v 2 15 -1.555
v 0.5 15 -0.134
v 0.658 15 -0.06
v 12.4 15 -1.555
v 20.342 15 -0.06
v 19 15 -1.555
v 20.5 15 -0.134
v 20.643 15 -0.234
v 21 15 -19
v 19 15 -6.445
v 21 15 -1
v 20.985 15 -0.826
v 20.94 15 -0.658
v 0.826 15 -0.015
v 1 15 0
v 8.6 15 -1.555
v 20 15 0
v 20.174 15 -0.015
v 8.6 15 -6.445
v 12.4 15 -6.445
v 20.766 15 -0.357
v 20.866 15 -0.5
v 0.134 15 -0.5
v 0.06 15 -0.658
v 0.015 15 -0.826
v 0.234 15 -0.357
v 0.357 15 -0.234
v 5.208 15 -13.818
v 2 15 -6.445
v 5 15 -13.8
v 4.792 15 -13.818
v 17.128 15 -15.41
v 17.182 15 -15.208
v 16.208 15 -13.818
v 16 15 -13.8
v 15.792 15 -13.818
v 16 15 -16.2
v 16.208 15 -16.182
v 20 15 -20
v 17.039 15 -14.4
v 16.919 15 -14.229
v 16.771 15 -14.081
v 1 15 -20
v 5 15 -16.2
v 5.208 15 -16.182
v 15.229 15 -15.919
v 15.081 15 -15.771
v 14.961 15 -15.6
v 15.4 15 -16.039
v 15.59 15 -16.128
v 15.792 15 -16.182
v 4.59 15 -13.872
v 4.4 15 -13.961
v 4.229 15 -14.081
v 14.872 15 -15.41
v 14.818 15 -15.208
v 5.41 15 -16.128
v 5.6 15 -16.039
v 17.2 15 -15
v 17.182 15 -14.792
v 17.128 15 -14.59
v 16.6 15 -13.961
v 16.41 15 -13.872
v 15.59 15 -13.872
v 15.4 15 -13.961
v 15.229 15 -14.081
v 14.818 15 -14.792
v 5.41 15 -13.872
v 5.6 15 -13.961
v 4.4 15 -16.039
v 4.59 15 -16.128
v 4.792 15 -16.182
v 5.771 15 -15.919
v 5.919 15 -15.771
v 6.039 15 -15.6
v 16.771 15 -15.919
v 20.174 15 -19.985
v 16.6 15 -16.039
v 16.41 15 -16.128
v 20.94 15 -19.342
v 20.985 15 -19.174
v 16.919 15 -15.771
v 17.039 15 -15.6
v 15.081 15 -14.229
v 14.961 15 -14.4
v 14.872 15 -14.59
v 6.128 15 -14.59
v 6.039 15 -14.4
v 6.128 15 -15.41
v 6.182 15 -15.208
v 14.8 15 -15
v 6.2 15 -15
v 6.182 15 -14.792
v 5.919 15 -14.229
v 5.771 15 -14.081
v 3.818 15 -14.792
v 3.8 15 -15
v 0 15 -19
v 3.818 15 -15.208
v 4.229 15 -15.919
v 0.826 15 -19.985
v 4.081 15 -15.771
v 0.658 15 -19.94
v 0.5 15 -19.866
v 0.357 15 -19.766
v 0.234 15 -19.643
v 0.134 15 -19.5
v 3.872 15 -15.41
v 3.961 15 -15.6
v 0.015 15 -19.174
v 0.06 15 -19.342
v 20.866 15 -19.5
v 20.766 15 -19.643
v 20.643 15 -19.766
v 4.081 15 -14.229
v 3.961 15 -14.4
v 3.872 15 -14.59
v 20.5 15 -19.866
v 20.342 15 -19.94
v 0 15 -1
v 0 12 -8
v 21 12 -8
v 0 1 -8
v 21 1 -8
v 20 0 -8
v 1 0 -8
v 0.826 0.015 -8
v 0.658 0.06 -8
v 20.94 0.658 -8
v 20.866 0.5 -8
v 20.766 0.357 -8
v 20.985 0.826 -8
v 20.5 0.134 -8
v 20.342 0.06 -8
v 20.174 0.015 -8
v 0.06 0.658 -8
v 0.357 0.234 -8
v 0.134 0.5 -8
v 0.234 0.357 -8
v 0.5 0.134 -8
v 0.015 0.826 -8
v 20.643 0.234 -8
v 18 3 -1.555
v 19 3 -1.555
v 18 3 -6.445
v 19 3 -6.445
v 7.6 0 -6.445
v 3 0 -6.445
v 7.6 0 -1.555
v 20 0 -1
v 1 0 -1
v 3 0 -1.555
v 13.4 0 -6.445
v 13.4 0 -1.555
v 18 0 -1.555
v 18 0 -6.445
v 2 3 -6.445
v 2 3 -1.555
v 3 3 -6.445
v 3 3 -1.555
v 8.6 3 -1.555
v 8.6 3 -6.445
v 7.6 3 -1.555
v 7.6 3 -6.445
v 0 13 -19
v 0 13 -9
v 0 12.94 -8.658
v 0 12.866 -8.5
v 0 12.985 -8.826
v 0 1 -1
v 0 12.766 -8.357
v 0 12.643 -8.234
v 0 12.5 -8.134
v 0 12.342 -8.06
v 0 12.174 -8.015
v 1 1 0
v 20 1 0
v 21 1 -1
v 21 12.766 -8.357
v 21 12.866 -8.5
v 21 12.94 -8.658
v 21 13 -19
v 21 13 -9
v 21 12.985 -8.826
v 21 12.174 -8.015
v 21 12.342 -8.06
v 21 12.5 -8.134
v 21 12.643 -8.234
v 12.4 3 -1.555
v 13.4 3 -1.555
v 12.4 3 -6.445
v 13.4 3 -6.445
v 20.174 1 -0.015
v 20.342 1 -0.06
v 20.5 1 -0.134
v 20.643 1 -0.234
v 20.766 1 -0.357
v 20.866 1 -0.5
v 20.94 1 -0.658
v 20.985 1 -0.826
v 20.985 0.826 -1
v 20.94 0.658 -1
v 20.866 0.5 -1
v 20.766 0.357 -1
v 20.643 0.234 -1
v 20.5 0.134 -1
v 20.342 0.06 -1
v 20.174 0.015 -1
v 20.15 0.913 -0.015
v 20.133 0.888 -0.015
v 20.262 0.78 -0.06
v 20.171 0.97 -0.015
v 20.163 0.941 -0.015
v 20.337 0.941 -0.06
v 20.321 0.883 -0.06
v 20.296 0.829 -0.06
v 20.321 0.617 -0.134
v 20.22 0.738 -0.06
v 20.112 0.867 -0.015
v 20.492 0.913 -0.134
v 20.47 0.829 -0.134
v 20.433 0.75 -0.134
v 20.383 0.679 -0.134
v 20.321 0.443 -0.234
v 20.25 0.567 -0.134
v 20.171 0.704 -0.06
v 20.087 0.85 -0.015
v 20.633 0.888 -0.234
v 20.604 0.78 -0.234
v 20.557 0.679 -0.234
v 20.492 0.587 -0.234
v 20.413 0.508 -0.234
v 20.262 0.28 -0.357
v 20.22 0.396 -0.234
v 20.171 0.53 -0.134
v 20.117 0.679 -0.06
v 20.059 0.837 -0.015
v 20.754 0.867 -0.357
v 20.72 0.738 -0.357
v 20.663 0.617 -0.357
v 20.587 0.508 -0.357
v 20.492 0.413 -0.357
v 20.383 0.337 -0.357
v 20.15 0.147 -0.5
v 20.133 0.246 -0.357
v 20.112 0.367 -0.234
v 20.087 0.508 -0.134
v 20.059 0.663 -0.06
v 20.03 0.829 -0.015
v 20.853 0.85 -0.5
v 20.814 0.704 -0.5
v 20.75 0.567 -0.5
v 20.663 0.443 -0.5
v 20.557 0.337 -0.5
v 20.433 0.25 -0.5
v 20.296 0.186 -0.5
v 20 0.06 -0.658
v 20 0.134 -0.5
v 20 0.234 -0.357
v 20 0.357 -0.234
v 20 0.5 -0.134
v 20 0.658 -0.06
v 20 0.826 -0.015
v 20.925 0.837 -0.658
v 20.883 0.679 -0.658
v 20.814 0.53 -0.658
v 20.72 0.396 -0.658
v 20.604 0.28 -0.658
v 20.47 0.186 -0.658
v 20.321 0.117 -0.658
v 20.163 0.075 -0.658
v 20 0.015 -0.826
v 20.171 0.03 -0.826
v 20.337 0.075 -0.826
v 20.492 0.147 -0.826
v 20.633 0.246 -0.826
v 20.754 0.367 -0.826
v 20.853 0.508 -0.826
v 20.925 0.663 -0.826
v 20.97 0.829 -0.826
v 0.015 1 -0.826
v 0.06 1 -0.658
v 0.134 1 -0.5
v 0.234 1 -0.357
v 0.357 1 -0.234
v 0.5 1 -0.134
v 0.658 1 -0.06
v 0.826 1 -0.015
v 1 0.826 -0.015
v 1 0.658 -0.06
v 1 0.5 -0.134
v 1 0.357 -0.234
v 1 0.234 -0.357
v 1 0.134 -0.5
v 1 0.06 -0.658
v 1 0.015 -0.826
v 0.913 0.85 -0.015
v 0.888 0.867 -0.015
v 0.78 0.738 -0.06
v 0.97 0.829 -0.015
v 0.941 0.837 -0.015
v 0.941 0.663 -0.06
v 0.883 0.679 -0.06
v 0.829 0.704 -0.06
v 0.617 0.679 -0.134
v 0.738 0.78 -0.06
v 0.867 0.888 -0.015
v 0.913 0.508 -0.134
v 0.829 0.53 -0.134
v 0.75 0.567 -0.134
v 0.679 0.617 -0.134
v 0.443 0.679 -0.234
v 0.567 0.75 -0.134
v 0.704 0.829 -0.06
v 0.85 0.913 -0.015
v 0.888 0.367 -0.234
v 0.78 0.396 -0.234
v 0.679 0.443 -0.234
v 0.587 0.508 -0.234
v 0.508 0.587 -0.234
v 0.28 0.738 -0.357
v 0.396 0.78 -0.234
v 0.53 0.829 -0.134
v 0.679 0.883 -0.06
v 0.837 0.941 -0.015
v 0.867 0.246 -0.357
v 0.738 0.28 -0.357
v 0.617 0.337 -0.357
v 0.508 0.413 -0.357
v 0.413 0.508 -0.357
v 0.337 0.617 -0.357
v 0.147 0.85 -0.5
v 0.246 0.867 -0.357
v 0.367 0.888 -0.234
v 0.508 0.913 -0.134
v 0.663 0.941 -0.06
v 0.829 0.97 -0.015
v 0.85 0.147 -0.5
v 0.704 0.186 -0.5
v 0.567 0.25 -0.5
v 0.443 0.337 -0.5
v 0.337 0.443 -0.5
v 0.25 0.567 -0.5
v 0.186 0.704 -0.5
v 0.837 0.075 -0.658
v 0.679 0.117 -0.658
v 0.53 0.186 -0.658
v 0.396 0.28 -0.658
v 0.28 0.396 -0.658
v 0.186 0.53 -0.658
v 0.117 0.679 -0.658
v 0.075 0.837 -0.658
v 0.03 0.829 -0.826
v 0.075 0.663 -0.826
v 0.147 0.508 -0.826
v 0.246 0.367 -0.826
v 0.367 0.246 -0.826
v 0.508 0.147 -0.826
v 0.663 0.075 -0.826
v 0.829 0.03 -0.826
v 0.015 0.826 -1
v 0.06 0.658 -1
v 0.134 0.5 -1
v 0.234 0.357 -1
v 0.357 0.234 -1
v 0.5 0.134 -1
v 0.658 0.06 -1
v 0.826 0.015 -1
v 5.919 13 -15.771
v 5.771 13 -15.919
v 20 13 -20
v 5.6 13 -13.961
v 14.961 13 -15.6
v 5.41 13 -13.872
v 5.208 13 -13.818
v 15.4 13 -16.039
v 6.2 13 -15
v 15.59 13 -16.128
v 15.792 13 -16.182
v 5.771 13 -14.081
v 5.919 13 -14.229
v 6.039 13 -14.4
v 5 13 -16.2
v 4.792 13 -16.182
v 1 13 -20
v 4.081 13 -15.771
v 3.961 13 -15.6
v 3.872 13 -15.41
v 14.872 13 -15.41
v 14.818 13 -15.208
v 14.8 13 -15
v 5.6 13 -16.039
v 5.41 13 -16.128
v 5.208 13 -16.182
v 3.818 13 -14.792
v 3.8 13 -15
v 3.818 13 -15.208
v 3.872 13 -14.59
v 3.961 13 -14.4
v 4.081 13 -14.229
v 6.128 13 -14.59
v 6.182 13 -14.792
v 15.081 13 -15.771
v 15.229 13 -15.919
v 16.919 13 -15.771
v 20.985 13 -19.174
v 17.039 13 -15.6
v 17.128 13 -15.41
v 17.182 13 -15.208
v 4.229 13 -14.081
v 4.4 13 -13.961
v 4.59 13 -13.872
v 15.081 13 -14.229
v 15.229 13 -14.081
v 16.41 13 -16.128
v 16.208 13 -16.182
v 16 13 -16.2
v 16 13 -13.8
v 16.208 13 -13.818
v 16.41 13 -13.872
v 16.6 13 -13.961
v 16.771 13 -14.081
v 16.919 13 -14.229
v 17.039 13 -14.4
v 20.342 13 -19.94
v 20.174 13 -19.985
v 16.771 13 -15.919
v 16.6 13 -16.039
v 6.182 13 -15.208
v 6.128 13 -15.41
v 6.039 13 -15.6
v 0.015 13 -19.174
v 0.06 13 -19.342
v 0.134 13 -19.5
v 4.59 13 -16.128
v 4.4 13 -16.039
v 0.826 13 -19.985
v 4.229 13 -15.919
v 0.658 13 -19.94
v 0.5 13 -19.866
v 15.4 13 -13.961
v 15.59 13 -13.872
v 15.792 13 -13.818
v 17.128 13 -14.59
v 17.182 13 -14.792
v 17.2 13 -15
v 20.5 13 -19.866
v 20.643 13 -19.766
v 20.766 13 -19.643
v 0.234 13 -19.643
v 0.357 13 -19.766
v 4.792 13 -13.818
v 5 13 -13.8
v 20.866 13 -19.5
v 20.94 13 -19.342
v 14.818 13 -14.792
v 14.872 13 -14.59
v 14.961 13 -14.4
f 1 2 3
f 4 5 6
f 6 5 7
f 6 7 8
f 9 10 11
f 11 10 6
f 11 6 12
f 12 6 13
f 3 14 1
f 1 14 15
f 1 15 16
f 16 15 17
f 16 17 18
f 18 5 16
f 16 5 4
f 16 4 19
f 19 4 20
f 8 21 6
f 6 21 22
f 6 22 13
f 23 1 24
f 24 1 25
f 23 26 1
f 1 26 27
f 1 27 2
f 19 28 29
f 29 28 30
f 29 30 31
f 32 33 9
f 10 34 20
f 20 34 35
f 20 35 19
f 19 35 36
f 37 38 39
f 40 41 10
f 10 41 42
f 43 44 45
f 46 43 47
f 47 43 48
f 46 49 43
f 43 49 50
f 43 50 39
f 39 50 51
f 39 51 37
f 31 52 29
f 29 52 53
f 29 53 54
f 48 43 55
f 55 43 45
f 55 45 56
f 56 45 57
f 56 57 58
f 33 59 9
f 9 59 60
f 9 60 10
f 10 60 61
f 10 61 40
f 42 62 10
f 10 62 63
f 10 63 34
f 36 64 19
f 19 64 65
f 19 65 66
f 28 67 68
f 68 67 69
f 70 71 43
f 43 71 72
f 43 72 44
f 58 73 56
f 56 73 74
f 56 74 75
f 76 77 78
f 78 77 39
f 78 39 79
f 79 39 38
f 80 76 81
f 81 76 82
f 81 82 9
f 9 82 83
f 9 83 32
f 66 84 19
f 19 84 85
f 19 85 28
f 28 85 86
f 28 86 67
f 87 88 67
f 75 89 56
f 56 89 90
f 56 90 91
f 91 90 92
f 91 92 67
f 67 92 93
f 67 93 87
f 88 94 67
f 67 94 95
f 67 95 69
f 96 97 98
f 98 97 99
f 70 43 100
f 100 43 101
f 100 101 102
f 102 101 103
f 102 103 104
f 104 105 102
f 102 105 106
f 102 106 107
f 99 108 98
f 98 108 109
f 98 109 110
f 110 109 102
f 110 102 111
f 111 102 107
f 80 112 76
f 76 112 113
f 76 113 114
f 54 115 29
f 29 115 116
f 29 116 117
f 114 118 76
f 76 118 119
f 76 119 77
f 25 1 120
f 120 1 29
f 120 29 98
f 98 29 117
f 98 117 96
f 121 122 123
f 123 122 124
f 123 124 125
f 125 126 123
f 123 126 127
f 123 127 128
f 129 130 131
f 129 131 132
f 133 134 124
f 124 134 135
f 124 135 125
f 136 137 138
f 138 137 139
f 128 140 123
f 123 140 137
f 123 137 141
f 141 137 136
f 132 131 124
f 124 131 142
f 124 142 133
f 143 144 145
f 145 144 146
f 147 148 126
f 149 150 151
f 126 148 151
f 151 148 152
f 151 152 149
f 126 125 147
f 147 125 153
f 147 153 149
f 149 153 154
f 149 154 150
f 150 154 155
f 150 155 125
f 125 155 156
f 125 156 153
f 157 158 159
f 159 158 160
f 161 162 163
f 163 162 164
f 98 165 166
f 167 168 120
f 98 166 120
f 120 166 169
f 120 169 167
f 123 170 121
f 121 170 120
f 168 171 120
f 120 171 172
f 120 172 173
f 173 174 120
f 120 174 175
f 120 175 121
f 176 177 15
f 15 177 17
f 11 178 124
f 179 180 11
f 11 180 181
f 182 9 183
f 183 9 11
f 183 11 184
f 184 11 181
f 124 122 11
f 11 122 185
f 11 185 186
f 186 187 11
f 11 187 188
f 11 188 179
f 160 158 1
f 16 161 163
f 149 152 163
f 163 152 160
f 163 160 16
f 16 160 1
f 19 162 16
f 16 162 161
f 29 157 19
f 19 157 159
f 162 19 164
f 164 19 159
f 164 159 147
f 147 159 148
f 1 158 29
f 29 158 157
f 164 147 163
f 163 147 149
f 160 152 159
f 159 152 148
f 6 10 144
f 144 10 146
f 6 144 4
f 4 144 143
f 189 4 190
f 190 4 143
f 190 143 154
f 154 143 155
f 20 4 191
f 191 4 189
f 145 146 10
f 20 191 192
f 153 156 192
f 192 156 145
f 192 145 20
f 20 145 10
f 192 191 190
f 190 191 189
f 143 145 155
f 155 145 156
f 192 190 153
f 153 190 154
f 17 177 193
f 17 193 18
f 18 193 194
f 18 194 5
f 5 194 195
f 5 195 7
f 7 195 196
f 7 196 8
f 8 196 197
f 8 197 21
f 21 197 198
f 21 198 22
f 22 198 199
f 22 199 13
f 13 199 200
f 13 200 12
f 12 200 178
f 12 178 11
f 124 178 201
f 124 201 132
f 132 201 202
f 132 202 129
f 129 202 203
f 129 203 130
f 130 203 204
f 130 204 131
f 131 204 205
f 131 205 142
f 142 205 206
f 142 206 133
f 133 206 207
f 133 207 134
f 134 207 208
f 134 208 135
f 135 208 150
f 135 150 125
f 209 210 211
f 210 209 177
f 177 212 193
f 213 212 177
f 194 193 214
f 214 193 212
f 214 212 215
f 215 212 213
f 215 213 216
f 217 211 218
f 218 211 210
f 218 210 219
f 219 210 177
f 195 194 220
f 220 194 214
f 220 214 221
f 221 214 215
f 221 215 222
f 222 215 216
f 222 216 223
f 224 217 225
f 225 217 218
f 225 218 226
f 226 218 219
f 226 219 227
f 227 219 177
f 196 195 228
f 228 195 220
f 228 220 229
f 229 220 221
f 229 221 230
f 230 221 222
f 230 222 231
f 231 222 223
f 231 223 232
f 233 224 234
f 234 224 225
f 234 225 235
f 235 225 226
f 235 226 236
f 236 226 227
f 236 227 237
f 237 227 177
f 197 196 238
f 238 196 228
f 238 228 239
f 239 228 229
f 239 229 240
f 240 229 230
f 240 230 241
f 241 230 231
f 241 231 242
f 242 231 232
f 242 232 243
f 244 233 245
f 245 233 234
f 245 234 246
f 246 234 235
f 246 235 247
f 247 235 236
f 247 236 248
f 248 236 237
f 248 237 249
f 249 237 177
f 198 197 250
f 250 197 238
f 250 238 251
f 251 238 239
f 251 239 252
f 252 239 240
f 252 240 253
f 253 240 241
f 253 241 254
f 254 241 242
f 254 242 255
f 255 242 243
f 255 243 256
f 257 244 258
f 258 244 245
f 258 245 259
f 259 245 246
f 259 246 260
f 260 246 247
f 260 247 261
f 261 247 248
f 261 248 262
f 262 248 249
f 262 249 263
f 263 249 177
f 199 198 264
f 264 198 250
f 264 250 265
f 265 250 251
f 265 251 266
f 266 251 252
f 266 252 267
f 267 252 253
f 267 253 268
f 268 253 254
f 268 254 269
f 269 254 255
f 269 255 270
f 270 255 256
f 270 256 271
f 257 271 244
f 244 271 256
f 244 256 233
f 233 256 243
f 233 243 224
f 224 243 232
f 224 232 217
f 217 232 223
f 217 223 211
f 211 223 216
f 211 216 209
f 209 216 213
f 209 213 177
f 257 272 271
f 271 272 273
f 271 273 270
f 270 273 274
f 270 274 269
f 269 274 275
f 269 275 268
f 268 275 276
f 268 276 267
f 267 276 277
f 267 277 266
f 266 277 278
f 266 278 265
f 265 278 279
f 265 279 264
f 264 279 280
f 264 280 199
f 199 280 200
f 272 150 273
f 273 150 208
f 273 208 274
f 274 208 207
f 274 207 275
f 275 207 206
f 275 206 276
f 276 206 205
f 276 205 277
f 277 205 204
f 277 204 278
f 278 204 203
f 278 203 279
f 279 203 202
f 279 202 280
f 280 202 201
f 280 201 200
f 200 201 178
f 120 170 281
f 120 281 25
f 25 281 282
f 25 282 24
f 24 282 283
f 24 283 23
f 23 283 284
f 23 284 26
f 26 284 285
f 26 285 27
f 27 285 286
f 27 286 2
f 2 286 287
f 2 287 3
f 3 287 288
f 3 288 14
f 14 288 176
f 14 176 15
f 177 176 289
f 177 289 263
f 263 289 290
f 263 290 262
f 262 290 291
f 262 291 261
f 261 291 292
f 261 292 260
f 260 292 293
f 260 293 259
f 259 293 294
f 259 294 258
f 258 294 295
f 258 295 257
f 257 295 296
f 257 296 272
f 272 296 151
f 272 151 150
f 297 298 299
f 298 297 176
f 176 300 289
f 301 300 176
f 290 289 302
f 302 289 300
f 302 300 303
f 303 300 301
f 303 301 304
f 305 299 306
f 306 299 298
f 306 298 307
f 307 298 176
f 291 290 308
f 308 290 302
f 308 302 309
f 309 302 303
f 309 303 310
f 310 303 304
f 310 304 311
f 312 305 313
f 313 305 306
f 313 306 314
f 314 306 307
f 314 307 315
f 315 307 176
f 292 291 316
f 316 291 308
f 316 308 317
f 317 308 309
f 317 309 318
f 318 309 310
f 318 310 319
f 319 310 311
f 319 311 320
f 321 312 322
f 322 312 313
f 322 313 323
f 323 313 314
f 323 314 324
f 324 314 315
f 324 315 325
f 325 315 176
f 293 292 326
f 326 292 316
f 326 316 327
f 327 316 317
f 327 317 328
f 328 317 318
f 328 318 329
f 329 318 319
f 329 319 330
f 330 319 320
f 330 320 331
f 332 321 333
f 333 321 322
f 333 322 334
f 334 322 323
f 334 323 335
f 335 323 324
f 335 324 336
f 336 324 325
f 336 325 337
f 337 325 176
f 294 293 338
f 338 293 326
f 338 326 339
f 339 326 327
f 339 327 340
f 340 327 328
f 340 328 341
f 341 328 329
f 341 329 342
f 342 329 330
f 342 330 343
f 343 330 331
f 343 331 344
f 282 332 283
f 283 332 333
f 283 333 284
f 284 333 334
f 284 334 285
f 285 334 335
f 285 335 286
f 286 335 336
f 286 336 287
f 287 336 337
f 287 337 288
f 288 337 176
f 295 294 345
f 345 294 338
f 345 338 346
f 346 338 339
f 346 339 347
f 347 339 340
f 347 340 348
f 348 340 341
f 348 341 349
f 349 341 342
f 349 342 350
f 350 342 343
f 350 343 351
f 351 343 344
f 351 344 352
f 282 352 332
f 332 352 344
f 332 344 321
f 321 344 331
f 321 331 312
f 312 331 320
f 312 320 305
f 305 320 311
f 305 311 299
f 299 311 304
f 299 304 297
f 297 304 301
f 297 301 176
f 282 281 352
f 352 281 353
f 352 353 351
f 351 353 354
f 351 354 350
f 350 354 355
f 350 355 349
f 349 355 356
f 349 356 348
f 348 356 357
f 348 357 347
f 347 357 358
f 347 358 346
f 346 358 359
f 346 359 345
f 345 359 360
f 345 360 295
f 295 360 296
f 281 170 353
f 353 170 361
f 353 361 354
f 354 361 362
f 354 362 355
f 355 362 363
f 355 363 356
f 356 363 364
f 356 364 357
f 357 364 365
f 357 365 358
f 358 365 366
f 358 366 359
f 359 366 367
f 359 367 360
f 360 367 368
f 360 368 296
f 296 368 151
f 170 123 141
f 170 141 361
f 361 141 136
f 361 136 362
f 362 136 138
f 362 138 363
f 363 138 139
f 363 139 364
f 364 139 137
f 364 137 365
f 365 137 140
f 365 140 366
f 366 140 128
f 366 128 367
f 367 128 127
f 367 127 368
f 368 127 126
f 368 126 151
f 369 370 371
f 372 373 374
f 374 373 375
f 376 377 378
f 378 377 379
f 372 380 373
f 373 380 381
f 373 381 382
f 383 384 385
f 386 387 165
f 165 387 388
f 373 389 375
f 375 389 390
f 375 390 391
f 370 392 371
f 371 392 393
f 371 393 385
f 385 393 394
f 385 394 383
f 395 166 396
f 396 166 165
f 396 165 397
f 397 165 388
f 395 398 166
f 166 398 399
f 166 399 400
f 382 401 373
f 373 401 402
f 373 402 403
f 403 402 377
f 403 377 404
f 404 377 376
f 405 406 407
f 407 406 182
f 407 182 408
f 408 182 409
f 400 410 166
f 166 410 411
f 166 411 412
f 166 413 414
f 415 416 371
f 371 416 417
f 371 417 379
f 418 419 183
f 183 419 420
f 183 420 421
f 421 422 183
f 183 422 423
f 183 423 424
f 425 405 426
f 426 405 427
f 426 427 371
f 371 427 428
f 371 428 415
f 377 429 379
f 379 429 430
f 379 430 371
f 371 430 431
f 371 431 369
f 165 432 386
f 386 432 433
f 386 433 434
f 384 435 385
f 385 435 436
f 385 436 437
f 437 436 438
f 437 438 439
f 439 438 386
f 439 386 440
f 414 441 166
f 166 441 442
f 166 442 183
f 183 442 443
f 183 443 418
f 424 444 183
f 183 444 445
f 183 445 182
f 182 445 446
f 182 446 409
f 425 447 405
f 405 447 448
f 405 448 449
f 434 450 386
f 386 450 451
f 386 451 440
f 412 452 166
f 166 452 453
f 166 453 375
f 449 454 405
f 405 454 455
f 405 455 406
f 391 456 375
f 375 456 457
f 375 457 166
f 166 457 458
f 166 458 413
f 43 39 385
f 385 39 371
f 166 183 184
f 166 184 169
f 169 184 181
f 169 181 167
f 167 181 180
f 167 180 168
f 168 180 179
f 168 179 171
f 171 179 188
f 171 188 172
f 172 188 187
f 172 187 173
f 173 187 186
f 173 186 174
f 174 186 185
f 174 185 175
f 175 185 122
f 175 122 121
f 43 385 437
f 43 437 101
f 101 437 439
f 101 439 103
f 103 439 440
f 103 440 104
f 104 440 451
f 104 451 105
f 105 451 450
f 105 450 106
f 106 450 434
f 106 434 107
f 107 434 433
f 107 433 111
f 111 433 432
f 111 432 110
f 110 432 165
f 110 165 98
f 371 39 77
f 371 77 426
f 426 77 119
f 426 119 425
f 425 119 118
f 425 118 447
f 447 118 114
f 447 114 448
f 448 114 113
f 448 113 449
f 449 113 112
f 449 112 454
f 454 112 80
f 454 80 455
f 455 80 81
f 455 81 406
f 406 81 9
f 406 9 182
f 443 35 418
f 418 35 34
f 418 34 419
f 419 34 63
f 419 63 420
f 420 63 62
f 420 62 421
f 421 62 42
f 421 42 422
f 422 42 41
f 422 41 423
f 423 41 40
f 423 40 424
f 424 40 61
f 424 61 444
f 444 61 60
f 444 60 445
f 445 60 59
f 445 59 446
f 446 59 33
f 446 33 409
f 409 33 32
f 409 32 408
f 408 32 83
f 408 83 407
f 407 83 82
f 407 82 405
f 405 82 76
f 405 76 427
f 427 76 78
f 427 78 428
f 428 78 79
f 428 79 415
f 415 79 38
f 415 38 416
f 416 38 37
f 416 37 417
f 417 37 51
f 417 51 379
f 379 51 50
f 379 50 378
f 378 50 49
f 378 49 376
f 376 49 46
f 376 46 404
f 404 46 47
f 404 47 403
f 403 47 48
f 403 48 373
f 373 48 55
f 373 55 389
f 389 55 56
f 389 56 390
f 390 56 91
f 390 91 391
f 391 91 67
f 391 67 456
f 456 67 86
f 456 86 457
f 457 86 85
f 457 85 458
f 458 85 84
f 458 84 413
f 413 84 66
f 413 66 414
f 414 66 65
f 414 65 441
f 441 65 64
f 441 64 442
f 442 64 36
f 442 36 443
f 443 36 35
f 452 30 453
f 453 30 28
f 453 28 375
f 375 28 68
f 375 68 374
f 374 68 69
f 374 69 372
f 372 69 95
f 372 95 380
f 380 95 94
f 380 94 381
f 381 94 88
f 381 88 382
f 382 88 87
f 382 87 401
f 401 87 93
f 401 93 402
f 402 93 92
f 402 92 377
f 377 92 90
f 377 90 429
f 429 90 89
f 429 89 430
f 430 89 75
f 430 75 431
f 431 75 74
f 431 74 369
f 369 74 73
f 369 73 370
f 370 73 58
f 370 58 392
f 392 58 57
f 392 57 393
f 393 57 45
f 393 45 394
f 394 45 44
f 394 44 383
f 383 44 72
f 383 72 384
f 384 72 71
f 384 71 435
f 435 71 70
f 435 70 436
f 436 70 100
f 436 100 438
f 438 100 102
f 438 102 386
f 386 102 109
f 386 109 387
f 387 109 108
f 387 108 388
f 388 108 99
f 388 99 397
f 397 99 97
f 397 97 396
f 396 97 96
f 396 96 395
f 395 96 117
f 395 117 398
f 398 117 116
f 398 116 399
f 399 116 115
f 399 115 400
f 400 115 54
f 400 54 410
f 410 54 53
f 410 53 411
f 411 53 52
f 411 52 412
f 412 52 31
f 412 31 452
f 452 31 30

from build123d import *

# Parameters (mm, degrees)
SKETCH1_W              = 21
SKETCH1_H              = 8
MAINBODY_DEPTH         = 15
SKETCH3_W              = 6.6
SKETCH3_H              = 4.89
QRDCLEARANCE_DEPTH     = 12
SKETCH4_W              = 4.6
SKETCH4_H              = 4.89
VISIONTUNNEL_DEPTH     = 3
FILLET1_R              = 1
SKETCH5_W              = 21
SKETCH5_H              = 2
FASTENINGBRACKET_DEPTH = 12
FILLET2_R              = 1
M2_CLEARANCE_HOLE1_D   = 2.4


with BuildPart() as part:
    # Sketch1 → mainBody (new body)
    with BuildSketch(Plane(origin=(0, 0, 0), x_dir=(1, 0, 0), z_dir=(0, 1, 0))):
        with Locations((10.5, 4)):
            Rectangle(SKETCH1_W, SKETCH1_H)
    extrude(amount=MAINBODY_DEPTH)

    # Sketch3 → QRDClearance (cut)
    with BuildSketch(Plane(origin=(0, 15, 0), x_dir=(1, 0, 0), z_dir=(0, 1, 0))):
        with Locations((5.3, 4)):
            Rectangle(SKETCH3_W, SKETCH3_H)
    qrdclearance = extrude(amount=-QRDCLEARANCE_DEPTH, mode=Mode.SUBTRACT)

    # Sketch4 → visionTunnel (cut)
    with BuildSketch(Plane(origin=(0, 3, 0), x_dir=(1, 0, 0), z_dir=(0, 1, 0))):
        with Locations((5.3, 4)):
            Rectangle(SKETCH4_W, SKETCH4_H)
    visiontunnel = extrude(amount=-VISIONTUNNEL_DEPTH, mode=Mode.SUBTRACT)

    # socketMirror: QRDClearance, visionTunnel across plane
    add(qrdclearance.mirror(Plane.ZY.offset(-10.5)), mode=Mode.SUBTRACT)
    add(visiontunnel.mirror(Plane.ZY.offset(-10.5)), mode=Mode.SUBTRACT)

    # Fillet1
    fillet1_edges = [part.edges().sort_by_distance(p)[0] for p in [
        (21, 0, -4),
        (10.5, 0, 0),
        (0, 0, -4),
        (21, 7.5, 0),
        (0, 7.5, 0),
    ]]
    fillet(fillet1_edges, radius=FILLET1_R)

    # Sketch5 → fasteningBracket (add)
    with BuildSketch(Plane(origin=(0, 0, -8), x_dir=(-1, 0, 0), z_dir=(0, 0, -1))):
        with Locations((-10.5, 14)):
            Rectangle(SKETCH5_W, SKETCH5_H)
    extrude(amount=FASTENINGBRACKET_DEPTH)

    # Fillet2
    fillet2_edges = [part.edges().sort_by_distance(p)[0] for p in [
        (0, 14, -20),
        (21, 14, -20),
        (10.5, 13, -8),
    ]]
    fillet(fillet2_edges, radius=FILLET2_R)

    # M2 Clearance Hole1 (through all)
    with Locations(Plane(origin=(5, 15, -15), x_dir=(0, 0, 1), z_dir=(0, 1, 0))):
        with Locations((0, 0), (0, 11)):
            Hole(M2_CLEARANCE_HOLE1_D / 2)


solid = part.part
